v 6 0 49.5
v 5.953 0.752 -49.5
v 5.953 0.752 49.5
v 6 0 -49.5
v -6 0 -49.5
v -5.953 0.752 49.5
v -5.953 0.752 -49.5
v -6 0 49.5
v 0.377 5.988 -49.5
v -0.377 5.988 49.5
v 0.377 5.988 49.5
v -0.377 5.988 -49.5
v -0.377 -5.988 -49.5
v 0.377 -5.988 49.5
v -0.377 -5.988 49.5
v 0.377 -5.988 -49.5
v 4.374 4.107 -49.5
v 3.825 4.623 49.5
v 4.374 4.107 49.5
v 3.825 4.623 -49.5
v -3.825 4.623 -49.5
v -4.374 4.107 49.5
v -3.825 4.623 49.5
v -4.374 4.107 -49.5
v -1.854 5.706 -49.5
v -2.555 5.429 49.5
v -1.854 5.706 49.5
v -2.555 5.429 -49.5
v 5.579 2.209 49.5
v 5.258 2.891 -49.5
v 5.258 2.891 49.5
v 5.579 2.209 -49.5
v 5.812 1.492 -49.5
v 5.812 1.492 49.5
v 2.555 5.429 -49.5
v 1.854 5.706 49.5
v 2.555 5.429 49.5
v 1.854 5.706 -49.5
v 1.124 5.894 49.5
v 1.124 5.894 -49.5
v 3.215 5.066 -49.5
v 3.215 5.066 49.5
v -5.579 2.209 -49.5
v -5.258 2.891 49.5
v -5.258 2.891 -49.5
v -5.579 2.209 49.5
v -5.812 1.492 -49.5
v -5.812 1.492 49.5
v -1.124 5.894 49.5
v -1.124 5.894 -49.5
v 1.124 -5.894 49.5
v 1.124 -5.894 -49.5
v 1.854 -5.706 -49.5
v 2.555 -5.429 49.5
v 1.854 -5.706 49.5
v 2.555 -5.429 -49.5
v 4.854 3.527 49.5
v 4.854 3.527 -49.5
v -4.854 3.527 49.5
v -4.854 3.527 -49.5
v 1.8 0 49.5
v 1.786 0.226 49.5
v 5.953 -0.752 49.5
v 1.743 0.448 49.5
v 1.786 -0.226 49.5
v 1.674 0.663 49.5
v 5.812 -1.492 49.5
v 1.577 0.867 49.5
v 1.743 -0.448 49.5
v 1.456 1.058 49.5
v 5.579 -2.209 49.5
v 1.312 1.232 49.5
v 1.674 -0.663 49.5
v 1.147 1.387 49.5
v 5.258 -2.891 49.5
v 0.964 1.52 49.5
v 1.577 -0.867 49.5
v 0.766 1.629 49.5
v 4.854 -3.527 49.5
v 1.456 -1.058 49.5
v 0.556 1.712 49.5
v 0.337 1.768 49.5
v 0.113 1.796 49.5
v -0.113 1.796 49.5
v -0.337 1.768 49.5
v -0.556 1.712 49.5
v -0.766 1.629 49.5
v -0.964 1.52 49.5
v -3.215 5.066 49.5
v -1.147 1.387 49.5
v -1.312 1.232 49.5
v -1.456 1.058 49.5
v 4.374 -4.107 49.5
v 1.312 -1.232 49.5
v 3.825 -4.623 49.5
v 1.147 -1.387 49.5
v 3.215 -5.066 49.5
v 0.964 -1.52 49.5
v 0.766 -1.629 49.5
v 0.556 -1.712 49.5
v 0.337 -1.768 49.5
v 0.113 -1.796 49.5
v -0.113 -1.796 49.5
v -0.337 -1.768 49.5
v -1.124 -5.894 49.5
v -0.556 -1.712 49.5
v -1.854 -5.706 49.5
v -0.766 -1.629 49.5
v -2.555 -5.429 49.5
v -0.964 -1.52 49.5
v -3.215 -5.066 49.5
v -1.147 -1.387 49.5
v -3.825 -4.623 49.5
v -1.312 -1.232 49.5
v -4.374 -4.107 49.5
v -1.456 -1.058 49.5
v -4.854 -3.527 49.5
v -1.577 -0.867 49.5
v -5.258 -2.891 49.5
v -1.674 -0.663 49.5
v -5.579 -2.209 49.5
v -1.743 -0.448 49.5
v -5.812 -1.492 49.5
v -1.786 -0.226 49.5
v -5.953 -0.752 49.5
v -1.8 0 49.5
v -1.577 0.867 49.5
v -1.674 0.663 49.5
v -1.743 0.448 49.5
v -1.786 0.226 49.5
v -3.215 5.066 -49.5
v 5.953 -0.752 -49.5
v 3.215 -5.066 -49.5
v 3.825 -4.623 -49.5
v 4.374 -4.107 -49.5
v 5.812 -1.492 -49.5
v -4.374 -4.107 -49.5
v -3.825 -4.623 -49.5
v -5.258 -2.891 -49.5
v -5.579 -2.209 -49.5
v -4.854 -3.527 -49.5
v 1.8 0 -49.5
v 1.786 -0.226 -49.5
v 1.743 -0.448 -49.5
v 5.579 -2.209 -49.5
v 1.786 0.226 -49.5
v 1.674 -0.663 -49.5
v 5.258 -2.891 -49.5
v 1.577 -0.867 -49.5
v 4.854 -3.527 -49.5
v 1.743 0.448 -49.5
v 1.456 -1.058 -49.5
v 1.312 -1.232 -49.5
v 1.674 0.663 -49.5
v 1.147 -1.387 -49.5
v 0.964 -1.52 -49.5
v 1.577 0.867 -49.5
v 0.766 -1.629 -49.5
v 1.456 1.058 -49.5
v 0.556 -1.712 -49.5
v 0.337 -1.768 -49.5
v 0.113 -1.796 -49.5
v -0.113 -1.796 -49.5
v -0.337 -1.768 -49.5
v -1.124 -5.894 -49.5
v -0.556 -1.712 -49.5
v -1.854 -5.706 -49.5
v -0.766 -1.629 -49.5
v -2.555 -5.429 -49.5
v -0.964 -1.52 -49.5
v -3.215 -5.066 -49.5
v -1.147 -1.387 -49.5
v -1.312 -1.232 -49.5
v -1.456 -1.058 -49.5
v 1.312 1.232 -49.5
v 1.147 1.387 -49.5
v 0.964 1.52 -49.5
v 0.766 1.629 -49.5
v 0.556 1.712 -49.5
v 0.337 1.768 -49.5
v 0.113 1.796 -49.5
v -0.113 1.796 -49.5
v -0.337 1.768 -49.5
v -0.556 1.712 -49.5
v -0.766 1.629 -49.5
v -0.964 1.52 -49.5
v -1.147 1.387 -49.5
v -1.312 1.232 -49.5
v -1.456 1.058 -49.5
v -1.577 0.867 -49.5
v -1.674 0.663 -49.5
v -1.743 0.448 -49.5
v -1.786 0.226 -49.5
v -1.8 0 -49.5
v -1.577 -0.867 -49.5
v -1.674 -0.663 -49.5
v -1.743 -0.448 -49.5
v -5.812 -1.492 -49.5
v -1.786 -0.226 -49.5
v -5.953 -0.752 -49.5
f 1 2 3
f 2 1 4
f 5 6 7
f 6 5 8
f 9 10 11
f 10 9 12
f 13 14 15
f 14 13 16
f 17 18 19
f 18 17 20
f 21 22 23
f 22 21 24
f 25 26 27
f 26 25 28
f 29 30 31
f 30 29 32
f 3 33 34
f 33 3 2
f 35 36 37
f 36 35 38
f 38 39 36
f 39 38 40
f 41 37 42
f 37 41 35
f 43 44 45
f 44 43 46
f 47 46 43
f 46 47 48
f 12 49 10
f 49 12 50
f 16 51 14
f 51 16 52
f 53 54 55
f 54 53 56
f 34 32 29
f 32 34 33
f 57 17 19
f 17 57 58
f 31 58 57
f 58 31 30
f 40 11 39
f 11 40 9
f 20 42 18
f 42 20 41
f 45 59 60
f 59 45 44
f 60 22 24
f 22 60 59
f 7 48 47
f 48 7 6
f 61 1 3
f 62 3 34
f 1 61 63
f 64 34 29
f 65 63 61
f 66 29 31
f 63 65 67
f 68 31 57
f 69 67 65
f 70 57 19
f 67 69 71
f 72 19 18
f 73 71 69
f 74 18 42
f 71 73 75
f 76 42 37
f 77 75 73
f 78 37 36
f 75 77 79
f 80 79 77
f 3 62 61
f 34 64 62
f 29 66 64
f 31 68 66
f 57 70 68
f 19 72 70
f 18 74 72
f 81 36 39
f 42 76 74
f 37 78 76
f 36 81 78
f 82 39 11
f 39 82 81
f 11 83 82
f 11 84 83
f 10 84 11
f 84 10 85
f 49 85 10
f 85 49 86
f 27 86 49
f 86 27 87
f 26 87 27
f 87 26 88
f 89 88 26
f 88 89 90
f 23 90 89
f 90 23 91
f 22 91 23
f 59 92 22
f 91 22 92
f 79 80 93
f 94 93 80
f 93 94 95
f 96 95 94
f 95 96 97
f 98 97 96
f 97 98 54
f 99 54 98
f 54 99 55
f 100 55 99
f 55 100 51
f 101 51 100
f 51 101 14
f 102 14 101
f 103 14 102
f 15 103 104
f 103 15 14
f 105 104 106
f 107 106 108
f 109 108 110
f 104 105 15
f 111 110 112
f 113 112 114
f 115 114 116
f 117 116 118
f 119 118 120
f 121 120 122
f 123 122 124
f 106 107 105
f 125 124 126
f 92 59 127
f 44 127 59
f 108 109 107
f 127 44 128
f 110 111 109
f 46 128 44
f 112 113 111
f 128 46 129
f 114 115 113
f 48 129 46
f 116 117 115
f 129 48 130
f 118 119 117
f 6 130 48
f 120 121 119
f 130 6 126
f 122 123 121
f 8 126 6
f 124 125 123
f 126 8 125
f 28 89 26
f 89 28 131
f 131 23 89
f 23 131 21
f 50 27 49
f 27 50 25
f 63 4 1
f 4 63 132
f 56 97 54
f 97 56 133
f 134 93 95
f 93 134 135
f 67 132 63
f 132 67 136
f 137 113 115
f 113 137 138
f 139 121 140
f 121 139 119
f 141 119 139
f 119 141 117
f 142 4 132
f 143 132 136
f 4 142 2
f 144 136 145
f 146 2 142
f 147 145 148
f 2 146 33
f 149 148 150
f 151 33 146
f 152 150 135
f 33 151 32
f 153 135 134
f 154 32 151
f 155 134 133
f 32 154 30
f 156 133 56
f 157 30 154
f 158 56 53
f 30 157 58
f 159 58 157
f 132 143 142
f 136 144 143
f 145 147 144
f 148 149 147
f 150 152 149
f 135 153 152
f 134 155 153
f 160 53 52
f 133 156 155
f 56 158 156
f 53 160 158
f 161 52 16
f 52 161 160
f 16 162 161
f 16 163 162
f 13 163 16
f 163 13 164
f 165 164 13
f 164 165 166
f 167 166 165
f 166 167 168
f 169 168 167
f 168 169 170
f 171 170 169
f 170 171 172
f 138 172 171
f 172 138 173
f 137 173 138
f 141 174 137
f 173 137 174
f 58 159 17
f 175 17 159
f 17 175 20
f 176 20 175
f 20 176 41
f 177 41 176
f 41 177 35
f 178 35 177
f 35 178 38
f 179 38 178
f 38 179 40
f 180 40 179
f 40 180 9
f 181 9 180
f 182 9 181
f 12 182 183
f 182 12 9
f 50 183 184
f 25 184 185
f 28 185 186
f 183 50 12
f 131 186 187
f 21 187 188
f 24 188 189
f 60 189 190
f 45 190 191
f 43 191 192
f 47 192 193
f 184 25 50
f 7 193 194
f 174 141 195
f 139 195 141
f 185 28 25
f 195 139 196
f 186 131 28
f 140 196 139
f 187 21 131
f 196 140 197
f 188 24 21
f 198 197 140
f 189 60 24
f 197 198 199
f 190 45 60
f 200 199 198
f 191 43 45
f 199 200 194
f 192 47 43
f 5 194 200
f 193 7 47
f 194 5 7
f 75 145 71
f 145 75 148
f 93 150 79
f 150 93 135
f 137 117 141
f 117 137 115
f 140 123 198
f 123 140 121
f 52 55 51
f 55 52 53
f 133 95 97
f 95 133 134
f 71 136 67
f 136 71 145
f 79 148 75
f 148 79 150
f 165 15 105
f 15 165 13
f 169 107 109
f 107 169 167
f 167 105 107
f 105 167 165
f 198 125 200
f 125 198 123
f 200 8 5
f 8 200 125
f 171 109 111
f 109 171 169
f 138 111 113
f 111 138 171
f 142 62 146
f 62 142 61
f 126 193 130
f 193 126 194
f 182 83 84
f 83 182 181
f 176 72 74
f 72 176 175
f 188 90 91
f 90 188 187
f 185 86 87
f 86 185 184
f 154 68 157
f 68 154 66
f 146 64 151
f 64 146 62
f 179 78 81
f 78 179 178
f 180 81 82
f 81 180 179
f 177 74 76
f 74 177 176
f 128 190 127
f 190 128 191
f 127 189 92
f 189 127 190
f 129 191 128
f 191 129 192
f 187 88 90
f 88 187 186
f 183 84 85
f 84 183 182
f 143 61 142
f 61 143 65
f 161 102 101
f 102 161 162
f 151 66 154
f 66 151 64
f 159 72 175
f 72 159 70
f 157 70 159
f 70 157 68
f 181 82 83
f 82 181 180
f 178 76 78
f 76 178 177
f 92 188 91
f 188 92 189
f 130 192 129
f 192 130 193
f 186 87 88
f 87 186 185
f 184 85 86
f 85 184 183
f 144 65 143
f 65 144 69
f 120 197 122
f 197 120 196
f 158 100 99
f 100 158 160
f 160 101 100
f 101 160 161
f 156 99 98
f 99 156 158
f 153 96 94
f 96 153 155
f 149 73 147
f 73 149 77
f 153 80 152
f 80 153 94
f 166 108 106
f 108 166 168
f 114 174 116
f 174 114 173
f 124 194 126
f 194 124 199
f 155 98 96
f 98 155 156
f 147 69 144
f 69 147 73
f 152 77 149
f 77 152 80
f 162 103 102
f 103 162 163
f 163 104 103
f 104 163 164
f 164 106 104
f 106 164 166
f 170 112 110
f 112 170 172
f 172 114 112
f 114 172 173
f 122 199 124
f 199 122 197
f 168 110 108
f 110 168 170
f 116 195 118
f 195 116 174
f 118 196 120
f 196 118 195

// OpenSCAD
$fn = 50;


difference() {
	union() {
		translate(v = [0, 0, -49.5000000000]) {
			cylinder(h = 99, r = 6.0000000000);
		}
	}
	union() {
		translate(v = [0, 0, -100.0000000000]) {
			cylinder(h = 200, r = 1.8000000000);
		}
	}
}
